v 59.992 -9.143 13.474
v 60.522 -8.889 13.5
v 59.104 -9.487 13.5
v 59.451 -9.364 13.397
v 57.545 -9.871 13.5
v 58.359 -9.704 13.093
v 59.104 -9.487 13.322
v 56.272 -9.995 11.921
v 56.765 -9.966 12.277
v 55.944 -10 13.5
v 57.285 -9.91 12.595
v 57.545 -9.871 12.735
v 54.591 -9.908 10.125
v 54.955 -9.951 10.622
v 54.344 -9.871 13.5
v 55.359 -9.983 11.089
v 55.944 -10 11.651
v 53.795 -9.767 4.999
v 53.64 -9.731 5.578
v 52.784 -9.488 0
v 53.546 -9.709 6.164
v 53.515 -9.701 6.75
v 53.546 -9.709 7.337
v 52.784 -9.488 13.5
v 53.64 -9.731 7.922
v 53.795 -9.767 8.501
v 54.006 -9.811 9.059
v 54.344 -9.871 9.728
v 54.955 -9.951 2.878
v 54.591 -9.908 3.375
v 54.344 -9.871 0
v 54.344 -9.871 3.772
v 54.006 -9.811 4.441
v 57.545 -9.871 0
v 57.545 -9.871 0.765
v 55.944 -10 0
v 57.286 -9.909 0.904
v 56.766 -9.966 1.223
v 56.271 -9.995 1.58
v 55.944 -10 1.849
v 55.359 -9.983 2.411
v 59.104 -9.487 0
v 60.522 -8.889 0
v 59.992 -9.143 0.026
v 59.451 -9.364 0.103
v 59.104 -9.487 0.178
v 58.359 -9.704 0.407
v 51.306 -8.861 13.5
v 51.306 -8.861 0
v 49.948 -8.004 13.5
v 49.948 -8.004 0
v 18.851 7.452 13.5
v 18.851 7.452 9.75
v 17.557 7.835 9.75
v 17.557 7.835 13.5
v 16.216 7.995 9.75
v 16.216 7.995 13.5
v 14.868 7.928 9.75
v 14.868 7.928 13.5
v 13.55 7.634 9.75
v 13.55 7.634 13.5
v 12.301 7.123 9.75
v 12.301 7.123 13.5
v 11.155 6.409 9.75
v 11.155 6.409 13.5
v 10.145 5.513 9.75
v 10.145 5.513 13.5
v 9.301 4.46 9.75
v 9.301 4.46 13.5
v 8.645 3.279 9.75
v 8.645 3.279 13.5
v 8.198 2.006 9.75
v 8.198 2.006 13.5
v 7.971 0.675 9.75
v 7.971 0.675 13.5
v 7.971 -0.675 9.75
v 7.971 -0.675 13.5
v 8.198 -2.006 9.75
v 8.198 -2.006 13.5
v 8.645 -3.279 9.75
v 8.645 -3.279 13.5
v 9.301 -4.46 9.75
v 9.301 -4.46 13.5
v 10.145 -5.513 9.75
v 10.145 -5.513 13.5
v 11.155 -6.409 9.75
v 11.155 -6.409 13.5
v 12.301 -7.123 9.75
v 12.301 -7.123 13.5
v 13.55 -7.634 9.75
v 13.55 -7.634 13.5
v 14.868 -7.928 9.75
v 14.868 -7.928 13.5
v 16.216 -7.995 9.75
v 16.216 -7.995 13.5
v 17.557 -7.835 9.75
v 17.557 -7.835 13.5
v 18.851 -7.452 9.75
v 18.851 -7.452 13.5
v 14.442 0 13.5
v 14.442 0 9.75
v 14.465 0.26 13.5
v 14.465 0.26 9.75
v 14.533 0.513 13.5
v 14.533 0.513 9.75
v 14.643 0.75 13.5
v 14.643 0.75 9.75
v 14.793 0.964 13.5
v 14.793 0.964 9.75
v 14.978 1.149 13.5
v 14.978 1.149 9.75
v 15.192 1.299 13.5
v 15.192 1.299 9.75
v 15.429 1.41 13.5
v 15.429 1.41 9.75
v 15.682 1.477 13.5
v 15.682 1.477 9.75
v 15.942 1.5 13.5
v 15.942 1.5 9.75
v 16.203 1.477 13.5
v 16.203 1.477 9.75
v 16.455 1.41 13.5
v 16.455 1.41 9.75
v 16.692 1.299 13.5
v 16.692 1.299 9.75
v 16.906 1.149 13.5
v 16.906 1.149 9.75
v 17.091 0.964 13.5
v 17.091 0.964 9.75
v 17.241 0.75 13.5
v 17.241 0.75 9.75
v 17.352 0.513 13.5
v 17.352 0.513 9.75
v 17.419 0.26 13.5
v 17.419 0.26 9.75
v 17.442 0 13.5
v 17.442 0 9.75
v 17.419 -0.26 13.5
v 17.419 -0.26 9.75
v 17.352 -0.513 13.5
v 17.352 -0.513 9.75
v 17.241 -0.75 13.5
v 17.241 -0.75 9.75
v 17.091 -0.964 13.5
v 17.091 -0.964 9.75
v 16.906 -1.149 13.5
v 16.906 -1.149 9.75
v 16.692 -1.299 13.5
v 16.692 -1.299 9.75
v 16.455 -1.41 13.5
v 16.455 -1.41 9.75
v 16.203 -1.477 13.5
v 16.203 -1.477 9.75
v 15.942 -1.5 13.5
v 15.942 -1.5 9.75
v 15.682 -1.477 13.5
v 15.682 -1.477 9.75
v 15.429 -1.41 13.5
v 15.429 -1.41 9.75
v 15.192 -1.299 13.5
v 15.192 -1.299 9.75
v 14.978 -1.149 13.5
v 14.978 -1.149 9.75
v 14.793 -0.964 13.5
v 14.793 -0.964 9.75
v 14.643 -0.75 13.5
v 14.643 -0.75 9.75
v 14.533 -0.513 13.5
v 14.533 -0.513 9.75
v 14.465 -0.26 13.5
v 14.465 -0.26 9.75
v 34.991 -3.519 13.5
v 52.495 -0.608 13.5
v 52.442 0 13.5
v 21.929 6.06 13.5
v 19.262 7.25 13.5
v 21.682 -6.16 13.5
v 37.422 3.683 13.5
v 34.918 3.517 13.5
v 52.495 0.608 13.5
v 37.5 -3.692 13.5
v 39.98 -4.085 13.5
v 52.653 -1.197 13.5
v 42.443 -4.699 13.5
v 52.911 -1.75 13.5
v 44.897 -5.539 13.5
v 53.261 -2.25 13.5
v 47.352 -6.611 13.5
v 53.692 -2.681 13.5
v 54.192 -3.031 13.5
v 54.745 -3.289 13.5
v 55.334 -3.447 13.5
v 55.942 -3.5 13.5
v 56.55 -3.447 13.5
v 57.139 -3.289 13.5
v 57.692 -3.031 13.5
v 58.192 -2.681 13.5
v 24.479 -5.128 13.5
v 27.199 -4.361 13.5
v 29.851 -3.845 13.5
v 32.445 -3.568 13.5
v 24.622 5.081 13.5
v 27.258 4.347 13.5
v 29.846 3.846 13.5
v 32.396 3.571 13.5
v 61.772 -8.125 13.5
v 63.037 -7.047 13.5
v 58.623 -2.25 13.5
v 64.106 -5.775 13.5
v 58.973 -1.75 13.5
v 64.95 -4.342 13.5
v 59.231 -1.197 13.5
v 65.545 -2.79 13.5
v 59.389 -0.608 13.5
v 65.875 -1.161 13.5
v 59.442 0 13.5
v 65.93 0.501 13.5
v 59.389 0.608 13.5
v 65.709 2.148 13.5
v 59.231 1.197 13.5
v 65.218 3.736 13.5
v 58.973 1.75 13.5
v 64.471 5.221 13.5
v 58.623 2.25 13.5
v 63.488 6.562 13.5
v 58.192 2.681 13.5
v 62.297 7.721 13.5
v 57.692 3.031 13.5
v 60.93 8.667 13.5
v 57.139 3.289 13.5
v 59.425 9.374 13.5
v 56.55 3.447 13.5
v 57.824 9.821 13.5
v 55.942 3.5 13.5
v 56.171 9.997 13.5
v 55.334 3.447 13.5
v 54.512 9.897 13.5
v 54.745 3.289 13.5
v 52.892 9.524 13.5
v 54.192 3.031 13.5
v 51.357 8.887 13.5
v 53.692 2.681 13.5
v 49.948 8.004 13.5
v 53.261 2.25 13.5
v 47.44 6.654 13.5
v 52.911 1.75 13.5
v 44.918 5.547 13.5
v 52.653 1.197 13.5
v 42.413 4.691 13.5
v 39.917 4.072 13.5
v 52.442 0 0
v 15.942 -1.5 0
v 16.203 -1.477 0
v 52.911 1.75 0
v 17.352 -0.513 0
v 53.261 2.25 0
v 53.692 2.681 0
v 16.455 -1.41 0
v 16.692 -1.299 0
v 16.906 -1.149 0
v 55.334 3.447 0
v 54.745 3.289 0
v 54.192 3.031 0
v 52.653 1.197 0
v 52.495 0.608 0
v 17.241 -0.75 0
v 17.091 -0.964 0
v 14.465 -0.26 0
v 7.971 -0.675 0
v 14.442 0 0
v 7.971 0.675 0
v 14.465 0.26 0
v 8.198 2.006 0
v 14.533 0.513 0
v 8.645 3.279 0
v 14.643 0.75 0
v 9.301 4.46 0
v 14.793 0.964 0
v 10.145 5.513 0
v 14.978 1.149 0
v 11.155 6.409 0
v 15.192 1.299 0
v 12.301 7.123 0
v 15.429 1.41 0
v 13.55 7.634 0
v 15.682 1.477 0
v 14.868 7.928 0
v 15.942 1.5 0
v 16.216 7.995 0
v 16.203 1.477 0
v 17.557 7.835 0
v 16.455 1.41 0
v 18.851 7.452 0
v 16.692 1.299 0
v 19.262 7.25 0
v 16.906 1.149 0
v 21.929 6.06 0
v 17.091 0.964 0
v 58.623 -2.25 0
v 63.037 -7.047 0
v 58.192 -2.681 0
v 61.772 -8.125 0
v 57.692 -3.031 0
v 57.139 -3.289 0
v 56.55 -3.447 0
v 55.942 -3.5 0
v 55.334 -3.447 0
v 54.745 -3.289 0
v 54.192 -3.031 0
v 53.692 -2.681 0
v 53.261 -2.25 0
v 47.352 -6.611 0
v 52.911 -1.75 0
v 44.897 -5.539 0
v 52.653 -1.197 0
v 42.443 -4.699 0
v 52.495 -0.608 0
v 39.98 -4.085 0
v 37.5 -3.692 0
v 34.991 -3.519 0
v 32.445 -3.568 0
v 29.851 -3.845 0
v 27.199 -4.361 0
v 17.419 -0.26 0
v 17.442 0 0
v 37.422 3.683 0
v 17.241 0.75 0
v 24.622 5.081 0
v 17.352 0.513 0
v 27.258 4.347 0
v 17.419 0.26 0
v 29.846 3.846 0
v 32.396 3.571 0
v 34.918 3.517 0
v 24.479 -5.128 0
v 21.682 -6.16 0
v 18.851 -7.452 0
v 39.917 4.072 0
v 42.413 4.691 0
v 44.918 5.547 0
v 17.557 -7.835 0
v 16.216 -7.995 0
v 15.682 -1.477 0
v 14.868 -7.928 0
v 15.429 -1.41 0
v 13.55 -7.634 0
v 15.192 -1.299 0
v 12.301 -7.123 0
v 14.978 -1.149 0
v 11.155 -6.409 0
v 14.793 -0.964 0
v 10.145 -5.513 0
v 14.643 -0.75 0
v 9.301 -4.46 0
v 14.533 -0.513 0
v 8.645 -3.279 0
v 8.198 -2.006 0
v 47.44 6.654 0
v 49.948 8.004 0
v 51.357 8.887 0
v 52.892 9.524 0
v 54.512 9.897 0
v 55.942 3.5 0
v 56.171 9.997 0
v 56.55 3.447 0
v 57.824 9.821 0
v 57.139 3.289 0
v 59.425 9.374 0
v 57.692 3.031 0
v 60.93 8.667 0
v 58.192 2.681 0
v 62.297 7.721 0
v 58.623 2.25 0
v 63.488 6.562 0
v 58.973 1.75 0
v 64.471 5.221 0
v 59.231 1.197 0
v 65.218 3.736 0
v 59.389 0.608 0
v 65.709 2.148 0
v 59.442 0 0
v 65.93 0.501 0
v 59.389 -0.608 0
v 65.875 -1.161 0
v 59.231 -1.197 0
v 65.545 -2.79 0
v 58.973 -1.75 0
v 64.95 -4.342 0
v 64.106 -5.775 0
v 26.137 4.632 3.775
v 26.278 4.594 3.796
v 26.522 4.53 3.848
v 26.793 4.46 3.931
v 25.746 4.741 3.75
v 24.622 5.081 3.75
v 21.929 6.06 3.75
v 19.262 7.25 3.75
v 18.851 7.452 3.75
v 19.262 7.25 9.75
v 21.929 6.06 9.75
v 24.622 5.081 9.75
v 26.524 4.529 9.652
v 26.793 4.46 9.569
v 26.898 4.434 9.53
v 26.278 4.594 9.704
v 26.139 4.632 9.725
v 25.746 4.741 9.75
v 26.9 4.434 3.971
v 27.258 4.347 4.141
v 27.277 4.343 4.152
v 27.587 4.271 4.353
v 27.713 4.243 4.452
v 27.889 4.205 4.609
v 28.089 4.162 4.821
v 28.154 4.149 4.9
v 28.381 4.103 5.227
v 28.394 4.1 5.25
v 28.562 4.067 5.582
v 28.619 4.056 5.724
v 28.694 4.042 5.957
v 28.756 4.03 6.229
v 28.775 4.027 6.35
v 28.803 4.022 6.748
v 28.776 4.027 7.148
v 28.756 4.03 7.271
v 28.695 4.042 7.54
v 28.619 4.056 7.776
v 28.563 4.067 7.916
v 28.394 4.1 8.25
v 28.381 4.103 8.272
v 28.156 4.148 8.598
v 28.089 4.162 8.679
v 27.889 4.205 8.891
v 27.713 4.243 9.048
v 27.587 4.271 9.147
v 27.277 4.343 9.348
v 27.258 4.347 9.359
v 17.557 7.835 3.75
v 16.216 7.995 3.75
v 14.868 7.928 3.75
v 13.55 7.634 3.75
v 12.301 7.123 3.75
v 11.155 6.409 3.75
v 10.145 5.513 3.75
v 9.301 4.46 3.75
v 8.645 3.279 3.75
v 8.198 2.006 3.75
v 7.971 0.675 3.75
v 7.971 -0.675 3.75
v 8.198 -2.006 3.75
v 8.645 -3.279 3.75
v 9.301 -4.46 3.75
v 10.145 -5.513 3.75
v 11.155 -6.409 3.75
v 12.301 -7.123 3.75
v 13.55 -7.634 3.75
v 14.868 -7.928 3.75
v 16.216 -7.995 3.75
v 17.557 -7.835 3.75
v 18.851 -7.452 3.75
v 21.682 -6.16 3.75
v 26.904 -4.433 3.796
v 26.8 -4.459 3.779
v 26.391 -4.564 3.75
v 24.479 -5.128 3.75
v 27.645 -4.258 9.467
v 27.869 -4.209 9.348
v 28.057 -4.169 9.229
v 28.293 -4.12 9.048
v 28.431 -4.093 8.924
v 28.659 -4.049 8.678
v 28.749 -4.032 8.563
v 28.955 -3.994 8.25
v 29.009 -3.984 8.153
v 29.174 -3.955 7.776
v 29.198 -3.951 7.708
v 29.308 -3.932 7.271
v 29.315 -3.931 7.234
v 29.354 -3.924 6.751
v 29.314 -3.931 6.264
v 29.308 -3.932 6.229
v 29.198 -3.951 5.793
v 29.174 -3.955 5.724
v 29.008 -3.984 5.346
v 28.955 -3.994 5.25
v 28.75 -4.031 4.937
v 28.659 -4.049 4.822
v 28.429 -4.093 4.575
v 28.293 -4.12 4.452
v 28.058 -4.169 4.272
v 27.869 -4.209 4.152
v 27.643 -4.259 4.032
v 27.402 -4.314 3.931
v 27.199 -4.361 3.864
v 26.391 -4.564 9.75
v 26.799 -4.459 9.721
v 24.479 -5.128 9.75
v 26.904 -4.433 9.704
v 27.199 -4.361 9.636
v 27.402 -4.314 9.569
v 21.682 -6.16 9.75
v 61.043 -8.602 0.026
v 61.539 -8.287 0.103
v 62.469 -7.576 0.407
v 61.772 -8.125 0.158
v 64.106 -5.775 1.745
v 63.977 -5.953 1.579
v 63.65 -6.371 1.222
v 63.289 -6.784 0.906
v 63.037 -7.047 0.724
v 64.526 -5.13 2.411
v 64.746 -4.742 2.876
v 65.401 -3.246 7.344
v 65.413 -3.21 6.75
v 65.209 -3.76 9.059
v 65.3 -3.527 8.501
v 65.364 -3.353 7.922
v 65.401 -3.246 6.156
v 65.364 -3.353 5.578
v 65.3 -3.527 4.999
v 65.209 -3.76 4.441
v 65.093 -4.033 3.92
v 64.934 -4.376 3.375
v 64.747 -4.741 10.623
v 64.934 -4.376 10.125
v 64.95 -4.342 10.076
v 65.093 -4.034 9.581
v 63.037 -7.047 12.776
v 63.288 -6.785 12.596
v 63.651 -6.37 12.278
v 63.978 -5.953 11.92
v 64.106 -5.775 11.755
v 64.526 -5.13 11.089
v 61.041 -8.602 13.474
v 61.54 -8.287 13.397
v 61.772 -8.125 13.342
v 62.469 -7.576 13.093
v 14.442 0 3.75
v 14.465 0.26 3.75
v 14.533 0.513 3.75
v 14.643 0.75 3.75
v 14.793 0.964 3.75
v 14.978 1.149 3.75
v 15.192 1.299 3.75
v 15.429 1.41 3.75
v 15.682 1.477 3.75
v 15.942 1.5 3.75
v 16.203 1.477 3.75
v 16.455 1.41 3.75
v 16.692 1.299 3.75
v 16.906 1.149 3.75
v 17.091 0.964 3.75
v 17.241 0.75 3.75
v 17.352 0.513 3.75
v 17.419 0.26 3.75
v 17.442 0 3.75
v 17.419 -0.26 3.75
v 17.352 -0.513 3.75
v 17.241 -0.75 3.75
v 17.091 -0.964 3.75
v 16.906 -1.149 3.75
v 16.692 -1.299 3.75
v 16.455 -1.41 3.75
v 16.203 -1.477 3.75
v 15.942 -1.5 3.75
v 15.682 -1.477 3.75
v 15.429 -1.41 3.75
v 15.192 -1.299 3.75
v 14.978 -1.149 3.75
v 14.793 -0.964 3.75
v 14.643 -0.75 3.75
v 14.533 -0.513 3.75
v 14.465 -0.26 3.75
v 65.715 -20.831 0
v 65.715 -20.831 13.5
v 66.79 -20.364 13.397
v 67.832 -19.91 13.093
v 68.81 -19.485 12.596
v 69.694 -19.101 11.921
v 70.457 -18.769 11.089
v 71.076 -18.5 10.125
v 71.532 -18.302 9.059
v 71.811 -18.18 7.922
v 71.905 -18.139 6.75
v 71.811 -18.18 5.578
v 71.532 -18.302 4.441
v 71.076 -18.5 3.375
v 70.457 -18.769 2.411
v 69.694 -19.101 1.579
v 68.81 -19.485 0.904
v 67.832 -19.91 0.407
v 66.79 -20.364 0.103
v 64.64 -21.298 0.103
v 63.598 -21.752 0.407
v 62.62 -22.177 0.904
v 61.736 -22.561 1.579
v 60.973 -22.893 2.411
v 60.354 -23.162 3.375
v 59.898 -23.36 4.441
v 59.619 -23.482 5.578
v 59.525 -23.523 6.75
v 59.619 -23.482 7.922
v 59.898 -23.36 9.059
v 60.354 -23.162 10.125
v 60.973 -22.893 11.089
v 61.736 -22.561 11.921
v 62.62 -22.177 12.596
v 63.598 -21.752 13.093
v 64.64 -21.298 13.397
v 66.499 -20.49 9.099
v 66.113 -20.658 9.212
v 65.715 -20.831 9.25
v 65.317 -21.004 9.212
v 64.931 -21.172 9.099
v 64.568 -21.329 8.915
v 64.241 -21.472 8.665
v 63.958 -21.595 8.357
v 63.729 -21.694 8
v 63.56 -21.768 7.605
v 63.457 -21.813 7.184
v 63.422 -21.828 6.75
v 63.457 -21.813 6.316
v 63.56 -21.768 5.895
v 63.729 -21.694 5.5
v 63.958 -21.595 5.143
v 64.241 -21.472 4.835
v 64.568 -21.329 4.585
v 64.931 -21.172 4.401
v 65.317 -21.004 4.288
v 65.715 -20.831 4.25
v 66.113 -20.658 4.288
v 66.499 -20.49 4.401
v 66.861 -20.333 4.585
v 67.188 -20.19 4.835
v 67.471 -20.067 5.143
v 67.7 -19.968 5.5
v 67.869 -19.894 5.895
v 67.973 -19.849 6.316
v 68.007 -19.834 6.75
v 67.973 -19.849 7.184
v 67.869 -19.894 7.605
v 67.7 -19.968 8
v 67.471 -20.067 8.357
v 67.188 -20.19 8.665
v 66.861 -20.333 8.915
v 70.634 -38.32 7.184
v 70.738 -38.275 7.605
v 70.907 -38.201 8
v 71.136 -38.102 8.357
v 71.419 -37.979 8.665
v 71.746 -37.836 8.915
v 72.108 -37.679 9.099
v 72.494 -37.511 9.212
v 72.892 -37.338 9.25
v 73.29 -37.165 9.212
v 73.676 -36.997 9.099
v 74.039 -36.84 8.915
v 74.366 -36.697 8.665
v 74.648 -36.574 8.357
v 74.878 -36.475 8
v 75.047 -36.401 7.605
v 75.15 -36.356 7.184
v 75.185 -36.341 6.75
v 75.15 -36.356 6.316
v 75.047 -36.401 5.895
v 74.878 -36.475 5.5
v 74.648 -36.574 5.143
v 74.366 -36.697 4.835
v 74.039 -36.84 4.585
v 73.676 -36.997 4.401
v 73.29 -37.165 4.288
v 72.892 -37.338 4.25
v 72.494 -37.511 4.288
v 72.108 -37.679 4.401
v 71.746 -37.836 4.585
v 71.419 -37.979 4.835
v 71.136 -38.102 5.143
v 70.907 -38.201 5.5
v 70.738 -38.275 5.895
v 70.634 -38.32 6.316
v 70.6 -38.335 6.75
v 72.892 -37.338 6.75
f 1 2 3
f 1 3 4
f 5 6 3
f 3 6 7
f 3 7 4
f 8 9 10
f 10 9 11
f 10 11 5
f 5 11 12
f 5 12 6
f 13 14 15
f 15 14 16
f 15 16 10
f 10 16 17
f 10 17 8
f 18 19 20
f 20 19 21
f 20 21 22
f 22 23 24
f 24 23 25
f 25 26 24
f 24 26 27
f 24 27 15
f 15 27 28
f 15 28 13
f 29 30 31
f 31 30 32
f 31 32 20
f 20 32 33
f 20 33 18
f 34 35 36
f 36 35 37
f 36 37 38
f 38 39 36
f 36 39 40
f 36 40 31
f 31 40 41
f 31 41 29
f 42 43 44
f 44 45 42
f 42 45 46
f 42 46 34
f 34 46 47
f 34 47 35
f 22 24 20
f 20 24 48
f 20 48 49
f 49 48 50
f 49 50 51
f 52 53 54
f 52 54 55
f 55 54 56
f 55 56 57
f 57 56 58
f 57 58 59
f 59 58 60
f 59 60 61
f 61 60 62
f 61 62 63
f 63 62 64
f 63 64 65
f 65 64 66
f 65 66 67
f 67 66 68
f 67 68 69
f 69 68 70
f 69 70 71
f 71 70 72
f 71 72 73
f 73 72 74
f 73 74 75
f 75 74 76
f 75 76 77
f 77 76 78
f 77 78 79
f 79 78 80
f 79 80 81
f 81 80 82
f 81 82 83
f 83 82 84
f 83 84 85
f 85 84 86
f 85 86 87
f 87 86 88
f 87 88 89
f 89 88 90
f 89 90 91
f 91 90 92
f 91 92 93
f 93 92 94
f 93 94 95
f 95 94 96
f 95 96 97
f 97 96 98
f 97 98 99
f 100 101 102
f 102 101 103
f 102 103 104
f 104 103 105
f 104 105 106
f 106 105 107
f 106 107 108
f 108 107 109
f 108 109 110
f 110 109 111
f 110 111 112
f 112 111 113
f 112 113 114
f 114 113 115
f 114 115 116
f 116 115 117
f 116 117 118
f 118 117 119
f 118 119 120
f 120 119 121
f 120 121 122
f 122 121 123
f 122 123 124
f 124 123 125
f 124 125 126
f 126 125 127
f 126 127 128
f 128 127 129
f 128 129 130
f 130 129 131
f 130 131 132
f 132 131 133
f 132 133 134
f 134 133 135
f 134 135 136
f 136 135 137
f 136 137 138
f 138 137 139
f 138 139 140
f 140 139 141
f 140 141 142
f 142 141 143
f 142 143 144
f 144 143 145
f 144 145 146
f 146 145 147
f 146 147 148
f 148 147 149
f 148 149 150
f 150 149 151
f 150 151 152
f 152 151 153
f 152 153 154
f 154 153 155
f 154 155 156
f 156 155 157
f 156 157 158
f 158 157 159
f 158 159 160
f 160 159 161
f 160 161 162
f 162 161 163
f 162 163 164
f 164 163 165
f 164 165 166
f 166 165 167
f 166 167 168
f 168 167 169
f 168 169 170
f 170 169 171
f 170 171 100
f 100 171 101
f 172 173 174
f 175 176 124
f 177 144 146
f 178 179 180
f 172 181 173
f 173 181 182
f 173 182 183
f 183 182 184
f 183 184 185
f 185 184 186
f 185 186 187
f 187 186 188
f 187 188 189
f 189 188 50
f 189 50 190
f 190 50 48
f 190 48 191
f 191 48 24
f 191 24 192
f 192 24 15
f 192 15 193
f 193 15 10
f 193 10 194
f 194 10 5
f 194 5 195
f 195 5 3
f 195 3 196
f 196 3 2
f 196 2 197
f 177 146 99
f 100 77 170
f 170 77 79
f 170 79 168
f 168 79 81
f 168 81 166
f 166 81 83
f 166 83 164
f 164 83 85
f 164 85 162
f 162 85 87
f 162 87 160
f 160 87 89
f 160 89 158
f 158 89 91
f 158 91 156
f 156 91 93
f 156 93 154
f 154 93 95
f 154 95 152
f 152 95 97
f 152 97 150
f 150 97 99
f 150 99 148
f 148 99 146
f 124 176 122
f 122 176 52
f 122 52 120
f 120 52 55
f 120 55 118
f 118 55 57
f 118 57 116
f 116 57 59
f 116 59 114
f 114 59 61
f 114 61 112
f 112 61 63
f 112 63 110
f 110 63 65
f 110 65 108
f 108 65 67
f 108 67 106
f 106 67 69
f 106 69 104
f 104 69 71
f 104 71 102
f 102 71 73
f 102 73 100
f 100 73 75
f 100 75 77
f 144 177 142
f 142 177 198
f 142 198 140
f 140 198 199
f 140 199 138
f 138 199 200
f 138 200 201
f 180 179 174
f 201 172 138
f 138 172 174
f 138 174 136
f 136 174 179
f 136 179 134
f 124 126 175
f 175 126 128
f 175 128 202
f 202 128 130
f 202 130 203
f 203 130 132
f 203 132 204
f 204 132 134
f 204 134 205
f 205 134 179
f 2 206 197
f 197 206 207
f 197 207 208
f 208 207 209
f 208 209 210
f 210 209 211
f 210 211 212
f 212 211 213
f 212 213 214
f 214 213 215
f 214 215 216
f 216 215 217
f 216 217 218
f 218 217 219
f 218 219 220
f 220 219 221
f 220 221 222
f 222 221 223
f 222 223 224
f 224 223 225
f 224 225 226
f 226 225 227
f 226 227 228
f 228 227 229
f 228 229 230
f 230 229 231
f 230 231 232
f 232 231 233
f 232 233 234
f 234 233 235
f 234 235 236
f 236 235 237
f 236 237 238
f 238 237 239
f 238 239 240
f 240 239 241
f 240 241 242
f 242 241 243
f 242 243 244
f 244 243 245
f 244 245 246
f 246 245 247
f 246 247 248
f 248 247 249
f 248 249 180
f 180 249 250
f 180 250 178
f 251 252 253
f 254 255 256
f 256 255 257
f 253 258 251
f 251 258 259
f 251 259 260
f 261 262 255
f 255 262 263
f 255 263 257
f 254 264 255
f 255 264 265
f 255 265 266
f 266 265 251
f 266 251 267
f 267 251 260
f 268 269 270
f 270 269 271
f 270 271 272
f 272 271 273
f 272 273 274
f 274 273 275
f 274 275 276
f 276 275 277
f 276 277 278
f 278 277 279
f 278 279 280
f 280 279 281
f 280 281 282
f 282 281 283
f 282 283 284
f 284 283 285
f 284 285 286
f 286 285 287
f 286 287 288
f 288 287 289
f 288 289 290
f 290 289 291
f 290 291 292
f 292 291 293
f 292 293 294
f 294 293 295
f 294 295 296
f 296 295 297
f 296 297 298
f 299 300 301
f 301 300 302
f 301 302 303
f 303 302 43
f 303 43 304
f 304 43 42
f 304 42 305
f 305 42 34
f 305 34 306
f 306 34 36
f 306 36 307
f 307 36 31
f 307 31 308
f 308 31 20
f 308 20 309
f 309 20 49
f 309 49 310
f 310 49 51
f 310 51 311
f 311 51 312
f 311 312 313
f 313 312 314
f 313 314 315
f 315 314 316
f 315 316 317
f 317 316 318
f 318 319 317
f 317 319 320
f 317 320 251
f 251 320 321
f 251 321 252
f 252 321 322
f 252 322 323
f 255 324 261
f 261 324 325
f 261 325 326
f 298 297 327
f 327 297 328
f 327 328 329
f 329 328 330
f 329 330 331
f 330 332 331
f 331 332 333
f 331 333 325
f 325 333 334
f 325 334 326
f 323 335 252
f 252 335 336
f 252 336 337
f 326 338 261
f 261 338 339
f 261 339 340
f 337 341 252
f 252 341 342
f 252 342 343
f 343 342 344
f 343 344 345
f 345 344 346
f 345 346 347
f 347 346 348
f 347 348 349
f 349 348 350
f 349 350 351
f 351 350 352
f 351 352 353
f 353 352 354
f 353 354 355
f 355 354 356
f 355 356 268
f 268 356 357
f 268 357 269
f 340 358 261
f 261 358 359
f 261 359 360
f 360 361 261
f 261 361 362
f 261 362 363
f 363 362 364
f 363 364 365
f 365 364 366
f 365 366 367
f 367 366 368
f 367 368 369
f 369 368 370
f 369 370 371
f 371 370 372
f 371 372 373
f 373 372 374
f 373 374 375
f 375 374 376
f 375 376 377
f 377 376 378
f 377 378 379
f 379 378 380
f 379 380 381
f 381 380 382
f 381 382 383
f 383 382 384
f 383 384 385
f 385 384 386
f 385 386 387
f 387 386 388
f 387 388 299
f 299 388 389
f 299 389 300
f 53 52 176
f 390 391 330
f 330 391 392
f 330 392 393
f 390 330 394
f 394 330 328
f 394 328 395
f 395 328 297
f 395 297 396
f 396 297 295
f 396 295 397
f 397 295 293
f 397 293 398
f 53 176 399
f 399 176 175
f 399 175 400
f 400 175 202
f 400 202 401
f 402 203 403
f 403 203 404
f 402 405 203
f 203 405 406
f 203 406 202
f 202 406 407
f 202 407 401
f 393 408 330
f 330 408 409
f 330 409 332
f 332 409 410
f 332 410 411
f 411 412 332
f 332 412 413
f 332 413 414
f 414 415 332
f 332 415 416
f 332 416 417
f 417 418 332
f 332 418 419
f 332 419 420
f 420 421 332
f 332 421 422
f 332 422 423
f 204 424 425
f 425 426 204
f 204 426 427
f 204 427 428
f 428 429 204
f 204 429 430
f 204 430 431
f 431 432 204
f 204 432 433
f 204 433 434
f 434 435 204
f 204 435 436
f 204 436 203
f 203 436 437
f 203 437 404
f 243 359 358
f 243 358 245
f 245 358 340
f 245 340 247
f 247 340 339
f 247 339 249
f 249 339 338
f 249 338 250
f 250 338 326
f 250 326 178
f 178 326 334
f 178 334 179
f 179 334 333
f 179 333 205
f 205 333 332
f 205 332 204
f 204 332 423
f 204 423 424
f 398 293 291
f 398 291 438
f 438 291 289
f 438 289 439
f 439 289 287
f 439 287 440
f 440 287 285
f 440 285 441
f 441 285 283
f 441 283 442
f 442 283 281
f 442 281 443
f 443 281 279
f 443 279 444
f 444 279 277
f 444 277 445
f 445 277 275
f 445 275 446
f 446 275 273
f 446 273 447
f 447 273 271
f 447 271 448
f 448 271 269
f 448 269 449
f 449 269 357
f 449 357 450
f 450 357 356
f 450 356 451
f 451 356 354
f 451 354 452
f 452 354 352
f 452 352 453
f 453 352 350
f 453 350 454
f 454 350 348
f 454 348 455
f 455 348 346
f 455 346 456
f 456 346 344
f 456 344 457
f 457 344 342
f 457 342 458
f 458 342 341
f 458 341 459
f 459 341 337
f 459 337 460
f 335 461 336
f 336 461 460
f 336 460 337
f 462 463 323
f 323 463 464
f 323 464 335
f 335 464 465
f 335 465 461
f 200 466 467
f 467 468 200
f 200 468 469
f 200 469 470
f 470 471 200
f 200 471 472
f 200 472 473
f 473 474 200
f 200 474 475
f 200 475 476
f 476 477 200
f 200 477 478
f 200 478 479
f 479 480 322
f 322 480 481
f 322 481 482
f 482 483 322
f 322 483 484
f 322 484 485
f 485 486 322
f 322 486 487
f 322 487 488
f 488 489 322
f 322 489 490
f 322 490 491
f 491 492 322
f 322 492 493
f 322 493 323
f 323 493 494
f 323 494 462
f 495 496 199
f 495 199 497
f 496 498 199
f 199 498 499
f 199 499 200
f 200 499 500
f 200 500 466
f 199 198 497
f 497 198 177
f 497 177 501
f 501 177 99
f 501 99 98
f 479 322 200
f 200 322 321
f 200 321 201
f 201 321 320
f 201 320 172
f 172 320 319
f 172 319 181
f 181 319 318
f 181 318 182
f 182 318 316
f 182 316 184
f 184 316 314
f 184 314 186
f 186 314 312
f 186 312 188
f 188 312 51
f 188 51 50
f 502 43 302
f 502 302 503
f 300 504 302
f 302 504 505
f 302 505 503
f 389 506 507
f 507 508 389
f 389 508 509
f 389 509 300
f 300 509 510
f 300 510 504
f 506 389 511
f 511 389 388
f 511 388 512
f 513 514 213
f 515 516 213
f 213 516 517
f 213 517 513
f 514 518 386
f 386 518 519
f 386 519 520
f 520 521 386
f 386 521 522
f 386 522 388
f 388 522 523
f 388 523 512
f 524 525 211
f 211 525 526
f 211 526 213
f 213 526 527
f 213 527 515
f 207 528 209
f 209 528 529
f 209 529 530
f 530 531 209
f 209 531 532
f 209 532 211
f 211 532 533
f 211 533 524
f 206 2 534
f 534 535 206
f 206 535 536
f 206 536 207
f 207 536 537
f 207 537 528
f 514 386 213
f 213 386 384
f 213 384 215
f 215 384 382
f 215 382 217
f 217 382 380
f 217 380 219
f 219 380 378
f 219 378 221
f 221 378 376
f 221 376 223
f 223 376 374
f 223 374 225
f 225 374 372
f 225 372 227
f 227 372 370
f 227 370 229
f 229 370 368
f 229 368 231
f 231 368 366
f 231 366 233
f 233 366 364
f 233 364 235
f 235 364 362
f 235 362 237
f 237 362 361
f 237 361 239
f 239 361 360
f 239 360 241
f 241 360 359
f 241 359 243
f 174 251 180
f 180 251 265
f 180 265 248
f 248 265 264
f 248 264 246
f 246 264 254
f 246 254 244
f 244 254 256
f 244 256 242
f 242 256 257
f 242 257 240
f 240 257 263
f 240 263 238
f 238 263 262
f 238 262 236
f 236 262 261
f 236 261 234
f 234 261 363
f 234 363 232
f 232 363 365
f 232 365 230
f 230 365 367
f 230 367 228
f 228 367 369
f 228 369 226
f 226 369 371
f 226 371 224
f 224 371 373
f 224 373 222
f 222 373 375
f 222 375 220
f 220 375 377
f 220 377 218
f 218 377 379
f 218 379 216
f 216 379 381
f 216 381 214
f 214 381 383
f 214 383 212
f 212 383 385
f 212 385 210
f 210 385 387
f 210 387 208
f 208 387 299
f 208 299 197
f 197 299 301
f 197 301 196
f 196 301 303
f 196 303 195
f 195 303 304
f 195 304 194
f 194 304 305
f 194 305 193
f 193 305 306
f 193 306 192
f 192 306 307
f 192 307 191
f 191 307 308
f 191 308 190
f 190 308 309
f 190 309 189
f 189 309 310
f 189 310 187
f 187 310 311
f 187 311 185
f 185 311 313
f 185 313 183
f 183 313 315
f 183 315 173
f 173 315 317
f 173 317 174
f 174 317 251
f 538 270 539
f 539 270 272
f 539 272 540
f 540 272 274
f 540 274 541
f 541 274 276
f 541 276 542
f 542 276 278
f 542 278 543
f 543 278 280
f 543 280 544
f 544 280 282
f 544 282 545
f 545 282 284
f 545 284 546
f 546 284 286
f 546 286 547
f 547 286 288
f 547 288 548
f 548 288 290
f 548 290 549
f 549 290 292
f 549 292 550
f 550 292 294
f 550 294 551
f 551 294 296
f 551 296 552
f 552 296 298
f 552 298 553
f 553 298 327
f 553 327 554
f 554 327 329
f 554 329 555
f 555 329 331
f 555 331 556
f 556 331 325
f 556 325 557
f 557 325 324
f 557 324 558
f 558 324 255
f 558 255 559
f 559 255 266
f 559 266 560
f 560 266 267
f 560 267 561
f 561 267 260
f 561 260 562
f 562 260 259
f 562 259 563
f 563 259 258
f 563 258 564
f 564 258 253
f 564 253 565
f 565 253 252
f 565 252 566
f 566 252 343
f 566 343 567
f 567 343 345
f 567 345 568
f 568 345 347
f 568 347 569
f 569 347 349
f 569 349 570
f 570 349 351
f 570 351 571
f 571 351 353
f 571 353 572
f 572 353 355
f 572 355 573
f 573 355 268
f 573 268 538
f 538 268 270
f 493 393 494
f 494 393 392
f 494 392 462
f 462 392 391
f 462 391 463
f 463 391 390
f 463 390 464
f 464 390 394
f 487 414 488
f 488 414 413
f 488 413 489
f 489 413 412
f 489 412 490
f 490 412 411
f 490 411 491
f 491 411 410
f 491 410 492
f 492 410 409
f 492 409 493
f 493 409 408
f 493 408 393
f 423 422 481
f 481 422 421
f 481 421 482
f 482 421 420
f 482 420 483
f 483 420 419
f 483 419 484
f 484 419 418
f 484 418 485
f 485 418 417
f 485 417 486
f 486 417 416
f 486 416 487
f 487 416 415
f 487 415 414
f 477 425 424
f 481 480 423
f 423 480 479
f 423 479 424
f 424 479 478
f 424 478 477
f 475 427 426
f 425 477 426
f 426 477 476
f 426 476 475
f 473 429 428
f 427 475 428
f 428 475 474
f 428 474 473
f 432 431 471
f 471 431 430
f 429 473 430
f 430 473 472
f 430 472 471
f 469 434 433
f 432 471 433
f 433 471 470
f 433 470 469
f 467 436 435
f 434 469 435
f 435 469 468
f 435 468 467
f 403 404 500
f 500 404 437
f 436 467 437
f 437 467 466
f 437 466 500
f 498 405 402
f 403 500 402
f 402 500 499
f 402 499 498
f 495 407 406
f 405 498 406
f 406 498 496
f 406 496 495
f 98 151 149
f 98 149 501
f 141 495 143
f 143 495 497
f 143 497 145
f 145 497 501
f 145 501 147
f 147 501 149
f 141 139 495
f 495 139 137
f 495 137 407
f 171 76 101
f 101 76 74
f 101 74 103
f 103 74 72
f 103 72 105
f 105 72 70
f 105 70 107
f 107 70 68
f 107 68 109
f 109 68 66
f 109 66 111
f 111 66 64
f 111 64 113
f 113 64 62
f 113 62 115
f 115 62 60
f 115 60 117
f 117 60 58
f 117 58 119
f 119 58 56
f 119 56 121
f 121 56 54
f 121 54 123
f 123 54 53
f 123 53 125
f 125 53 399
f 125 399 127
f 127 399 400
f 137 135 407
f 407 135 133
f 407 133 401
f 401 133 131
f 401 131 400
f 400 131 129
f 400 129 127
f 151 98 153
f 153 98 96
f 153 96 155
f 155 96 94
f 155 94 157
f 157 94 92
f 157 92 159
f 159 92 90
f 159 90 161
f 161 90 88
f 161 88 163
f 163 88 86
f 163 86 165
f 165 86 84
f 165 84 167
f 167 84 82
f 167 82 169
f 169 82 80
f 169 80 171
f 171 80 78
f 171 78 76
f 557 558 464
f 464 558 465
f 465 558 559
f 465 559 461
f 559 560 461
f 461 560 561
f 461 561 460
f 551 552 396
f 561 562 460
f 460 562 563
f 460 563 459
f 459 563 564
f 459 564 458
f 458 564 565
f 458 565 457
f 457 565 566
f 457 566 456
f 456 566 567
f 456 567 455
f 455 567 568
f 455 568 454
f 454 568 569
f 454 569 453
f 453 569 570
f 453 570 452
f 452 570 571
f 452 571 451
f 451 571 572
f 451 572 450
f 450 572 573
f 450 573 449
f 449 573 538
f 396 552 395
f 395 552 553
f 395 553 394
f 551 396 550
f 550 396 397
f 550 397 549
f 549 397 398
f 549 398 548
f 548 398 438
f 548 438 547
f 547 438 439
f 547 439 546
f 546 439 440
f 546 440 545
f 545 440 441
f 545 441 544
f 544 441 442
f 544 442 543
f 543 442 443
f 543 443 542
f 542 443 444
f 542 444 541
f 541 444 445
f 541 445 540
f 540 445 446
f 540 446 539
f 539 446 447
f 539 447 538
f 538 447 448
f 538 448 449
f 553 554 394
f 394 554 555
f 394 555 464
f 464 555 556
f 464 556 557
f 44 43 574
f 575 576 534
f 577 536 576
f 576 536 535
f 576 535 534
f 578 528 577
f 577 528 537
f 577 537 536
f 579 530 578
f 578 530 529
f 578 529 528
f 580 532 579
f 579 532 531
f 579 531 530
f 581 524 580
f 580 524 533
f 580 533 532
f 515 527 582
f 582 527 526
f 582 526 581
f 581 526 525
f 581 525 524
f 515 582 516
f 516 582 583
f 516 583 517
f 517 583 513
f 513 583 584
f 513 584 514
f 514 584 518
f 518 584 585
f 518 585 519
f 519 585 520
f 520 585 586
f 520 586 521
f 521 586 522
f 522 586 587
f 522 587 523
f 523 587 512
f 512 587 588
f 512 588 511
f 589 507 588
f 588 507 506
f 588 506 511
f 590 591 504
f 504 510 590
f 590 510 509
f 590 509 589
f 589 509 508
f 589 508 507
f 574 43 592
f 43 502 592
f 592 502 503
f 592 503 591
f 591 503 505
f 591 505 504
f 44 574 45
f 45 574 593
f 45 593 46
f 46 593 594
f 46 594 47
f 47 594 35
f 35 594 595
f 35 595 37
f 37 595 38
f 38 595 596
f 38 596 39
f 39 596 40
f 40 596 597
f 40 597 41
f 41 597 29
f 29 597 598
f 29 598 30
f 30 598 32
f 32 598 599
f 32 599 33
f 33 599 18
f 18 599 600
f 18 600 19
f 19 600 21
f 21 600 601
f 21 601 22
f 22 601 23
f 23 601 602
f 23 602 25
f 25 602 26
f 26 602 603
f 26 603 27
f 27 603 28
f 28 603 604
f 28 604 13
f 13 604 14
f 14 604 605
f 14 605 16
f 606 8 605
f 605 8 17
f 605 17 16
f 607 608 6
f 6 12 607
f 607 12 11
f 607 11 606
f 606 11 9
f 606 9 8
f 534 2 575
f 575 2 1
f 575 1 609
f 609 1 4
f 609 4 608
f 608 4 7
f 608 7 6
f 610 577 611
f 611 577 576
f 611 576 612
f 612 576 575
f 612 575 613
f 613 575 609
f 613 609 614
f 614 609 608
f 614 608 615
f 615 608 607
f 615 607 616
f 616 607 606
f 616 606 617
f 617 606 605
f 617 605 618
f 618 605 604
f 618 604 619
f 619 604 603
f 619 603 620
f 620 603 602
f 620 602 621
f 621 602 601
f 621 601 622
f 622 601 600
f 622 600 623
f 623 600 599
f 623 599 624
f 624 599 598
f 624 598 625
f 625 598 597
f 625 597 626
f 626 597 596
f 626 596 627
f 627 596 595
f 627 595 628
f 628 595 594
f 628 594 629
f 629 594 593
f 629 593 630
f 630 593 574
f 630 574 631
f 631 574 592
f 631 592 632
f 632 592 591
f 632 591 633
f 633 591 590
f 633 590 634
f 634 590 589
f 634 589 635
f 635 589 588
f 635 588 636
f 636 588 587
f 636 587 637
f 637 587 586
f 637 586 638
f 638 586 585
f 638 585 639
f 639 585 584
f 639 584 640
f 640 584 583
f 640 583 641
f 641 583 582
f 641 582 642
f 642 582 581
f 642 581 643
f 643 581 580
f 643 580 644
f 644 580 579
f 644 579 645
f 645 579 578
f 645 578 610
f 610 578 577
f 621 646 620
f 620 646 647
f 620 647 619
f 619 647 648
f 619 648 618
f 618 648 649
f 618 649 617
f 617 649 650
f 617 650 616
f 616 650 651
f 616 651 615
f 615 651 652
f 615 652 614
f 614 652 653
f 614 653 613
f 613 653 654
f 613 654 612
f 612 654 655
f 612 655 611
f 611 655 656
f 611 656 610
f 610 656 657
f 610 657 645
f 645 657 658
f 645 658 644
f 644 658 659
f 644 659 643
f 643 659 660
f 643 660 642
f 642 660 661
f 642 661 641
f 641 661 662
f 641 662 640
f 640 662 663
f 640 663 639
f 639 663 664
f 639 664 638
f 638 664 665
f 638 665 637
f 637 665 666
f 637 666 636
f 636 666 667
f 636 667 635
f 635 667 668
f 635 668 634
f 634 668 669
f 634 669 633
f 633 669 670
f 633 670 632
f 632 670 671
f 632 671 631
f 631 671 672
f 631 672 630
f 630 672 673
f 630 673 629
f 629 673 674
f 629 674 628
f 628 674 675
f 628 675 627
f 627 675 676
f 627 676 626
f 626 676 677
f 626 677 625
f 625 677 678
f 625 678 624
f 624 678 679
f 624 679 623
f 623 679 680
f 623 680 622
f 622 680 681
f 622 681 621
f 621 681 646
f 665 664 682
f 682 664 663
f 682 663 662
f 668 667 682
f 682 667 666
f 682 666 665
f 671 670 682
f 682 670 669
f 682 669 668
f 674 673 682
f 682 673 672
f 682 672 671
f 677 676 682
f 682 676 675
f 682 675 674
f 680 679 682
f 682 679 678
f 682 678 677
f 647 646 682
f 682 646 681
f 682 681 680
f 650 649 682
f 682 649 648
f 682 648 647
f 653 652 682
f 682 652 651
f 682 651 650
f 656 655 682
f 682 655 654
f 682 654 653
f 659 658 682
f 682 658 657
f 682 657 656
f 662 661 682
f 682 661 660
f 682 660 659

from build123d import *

# Parameters (mm, degrees)
SKETCH1_R                = 3.5
SKETCH1_R_2              = 1.5
BOSS_EXTRUDE2_DEPTH      = 13.5
CUT_EXTRUDE4_DEPTH       = 70.616522229
CUT_EXTRUDE4_DEPTH_BACK  = 70.616522229
BOSS_EXTRUDE3_DEPTH      = 13
BOSS_EXTRUDE3_DEPTH_BACK = 5
SKETCH4_R                = 6.75
SKETCH7_R                = 1.5
SKETCH7_R_2              = 0.7
BOSS_EXTRUDE4_DEPTH      = 10
SKETCH9_R                = 2.5
BOSS_EXTRUDE5_DEPTH      = 18


with BuildPart() as part:
    # Sketch1 → Boss-Extrude2 (new body)
    with BuildSketch(Plane.XY):
        with BuildLine():
            ThreePointArc((49.948019617, -8.004321858), (65.942252812, 0), (49.948019617, 8.004321858))
            add(Edge.make_bspline(
                [(49.948019617, 8.004321858), (35.174968068, -0.699990604), (18.85115398, 7.452401894)],
                knots=[0, 0, 0, 1, 1, 1], degree=2))
            ThreePointArc((18.85115398, 7.452401894), (7.942252812, 0), (18.85115398, -7.452401894))
            add(Edge.make_bspline(
                [(49.948019617, -8.004321858), (35.174968068, 0.699990604), (18.85115398, -7.452401894)],
                knots=[0, 0, 0, 1, 1, 1], degree=2))
        make_face()
        with Locations((55.942252812, 0)):
            Circle(SKETCH1_R, mode=Mode.SUBTRACT)
        with Locations((15.942252812, 0)):
            Circle(SKETCH1_R_2, mode=Mode.SUBTRACT)
    extrude(amount=BOSS_EXTRUDE2_DEPTH)

    # Sketch3 → Cut-Extrude4 (cut, two sides: drawn at the far end of the back side and taken through both)
    with BuildSketch(Plane(origin=(-0.424036019, 6.116012378, 0), x_dir=(0.9976051599790391, 0.06916606670323111, 0), z_dir=(-0.06916606670323111, 0.9976051599790391, 0)).offset(-CUT_EXTRUDE4_DEPTH_BACK)):
        with BuildLine():
            Line((26.011787518, -9.75), (7.904073667, -9.75))
            Line((7.904073667, -9.75), (7.904073667, -3.75))
            Line((7.904073667, -3.75), (26.011787518, -3.75))
            ThreePointArc((26.011787518, -3.75), (29.011787518, -6.75), (26.011787518, -9.75))
        make_face()
    extrude(amount=CUT_EXTRUDE4_DEPTH + CUT_EXTRUDE4_DEPTH_BACK, mode=Mode.SUBTRACT)

    # Sketch4 → Boss-Extrude3 (add, two sides: drawn at the far end of the back side and taken through both)
    with BuildSketch(Plane(origin=(12.882354757, -29.627387579, 0), x_dir=(0, 0, -1), z_dir=(0.39874906892524703, -0.9170600743851237, 0)).offset(-BOSS_EXTRUDE3_DEPTH_BACK)):
        with Locations(Location((-6.75, 51.958012611, 0), (0, 0, 90))):
            Circle(SKETCH4_R)
    extrude(amount=BOSS_EXTRUDE3_DEPTH + BOSS_EXTRUDE3_DEPTH_BACK)

    # Sketch7 → Boss-Extrude4 (add)
    with BuildSketch(Plane(origin=(18.066092653, -41.549168546, 0), x_dir=(0.9170600743851237, 0.39874906892524703, 0), z_dir=(0.39874906892524703, -0.9170600743851237, 0))):
        with Locations((51.958012611, 6.75)):
            Circle(SKETCH7_R)
        with Locations((51.958012611, 6.75)):
            Circle(SKETCH7_R_2, mode=Mode.SUBTRACT)
    extrude(amount=BOSS_EXTRUDE4_DEPTH)

    # Sketch9 → Boss-Extrude5 (add)
    with BuildSketch(Plane(origin=(18.066092653, -41.549168546, 0), x_dir=(0.9170600743851237, 0.39874906892524703, 0), z_dir=(0.39874906892524703, -0.9170600743851237, 0))):
        with Locations(Location((51.958012611, 6.75, 0), (0, 0, 180))):
            Circle(SKETCH9_R)
    extrude(amount=BOSS_EXTRUDE5_DEPTH)


solid = part.part
